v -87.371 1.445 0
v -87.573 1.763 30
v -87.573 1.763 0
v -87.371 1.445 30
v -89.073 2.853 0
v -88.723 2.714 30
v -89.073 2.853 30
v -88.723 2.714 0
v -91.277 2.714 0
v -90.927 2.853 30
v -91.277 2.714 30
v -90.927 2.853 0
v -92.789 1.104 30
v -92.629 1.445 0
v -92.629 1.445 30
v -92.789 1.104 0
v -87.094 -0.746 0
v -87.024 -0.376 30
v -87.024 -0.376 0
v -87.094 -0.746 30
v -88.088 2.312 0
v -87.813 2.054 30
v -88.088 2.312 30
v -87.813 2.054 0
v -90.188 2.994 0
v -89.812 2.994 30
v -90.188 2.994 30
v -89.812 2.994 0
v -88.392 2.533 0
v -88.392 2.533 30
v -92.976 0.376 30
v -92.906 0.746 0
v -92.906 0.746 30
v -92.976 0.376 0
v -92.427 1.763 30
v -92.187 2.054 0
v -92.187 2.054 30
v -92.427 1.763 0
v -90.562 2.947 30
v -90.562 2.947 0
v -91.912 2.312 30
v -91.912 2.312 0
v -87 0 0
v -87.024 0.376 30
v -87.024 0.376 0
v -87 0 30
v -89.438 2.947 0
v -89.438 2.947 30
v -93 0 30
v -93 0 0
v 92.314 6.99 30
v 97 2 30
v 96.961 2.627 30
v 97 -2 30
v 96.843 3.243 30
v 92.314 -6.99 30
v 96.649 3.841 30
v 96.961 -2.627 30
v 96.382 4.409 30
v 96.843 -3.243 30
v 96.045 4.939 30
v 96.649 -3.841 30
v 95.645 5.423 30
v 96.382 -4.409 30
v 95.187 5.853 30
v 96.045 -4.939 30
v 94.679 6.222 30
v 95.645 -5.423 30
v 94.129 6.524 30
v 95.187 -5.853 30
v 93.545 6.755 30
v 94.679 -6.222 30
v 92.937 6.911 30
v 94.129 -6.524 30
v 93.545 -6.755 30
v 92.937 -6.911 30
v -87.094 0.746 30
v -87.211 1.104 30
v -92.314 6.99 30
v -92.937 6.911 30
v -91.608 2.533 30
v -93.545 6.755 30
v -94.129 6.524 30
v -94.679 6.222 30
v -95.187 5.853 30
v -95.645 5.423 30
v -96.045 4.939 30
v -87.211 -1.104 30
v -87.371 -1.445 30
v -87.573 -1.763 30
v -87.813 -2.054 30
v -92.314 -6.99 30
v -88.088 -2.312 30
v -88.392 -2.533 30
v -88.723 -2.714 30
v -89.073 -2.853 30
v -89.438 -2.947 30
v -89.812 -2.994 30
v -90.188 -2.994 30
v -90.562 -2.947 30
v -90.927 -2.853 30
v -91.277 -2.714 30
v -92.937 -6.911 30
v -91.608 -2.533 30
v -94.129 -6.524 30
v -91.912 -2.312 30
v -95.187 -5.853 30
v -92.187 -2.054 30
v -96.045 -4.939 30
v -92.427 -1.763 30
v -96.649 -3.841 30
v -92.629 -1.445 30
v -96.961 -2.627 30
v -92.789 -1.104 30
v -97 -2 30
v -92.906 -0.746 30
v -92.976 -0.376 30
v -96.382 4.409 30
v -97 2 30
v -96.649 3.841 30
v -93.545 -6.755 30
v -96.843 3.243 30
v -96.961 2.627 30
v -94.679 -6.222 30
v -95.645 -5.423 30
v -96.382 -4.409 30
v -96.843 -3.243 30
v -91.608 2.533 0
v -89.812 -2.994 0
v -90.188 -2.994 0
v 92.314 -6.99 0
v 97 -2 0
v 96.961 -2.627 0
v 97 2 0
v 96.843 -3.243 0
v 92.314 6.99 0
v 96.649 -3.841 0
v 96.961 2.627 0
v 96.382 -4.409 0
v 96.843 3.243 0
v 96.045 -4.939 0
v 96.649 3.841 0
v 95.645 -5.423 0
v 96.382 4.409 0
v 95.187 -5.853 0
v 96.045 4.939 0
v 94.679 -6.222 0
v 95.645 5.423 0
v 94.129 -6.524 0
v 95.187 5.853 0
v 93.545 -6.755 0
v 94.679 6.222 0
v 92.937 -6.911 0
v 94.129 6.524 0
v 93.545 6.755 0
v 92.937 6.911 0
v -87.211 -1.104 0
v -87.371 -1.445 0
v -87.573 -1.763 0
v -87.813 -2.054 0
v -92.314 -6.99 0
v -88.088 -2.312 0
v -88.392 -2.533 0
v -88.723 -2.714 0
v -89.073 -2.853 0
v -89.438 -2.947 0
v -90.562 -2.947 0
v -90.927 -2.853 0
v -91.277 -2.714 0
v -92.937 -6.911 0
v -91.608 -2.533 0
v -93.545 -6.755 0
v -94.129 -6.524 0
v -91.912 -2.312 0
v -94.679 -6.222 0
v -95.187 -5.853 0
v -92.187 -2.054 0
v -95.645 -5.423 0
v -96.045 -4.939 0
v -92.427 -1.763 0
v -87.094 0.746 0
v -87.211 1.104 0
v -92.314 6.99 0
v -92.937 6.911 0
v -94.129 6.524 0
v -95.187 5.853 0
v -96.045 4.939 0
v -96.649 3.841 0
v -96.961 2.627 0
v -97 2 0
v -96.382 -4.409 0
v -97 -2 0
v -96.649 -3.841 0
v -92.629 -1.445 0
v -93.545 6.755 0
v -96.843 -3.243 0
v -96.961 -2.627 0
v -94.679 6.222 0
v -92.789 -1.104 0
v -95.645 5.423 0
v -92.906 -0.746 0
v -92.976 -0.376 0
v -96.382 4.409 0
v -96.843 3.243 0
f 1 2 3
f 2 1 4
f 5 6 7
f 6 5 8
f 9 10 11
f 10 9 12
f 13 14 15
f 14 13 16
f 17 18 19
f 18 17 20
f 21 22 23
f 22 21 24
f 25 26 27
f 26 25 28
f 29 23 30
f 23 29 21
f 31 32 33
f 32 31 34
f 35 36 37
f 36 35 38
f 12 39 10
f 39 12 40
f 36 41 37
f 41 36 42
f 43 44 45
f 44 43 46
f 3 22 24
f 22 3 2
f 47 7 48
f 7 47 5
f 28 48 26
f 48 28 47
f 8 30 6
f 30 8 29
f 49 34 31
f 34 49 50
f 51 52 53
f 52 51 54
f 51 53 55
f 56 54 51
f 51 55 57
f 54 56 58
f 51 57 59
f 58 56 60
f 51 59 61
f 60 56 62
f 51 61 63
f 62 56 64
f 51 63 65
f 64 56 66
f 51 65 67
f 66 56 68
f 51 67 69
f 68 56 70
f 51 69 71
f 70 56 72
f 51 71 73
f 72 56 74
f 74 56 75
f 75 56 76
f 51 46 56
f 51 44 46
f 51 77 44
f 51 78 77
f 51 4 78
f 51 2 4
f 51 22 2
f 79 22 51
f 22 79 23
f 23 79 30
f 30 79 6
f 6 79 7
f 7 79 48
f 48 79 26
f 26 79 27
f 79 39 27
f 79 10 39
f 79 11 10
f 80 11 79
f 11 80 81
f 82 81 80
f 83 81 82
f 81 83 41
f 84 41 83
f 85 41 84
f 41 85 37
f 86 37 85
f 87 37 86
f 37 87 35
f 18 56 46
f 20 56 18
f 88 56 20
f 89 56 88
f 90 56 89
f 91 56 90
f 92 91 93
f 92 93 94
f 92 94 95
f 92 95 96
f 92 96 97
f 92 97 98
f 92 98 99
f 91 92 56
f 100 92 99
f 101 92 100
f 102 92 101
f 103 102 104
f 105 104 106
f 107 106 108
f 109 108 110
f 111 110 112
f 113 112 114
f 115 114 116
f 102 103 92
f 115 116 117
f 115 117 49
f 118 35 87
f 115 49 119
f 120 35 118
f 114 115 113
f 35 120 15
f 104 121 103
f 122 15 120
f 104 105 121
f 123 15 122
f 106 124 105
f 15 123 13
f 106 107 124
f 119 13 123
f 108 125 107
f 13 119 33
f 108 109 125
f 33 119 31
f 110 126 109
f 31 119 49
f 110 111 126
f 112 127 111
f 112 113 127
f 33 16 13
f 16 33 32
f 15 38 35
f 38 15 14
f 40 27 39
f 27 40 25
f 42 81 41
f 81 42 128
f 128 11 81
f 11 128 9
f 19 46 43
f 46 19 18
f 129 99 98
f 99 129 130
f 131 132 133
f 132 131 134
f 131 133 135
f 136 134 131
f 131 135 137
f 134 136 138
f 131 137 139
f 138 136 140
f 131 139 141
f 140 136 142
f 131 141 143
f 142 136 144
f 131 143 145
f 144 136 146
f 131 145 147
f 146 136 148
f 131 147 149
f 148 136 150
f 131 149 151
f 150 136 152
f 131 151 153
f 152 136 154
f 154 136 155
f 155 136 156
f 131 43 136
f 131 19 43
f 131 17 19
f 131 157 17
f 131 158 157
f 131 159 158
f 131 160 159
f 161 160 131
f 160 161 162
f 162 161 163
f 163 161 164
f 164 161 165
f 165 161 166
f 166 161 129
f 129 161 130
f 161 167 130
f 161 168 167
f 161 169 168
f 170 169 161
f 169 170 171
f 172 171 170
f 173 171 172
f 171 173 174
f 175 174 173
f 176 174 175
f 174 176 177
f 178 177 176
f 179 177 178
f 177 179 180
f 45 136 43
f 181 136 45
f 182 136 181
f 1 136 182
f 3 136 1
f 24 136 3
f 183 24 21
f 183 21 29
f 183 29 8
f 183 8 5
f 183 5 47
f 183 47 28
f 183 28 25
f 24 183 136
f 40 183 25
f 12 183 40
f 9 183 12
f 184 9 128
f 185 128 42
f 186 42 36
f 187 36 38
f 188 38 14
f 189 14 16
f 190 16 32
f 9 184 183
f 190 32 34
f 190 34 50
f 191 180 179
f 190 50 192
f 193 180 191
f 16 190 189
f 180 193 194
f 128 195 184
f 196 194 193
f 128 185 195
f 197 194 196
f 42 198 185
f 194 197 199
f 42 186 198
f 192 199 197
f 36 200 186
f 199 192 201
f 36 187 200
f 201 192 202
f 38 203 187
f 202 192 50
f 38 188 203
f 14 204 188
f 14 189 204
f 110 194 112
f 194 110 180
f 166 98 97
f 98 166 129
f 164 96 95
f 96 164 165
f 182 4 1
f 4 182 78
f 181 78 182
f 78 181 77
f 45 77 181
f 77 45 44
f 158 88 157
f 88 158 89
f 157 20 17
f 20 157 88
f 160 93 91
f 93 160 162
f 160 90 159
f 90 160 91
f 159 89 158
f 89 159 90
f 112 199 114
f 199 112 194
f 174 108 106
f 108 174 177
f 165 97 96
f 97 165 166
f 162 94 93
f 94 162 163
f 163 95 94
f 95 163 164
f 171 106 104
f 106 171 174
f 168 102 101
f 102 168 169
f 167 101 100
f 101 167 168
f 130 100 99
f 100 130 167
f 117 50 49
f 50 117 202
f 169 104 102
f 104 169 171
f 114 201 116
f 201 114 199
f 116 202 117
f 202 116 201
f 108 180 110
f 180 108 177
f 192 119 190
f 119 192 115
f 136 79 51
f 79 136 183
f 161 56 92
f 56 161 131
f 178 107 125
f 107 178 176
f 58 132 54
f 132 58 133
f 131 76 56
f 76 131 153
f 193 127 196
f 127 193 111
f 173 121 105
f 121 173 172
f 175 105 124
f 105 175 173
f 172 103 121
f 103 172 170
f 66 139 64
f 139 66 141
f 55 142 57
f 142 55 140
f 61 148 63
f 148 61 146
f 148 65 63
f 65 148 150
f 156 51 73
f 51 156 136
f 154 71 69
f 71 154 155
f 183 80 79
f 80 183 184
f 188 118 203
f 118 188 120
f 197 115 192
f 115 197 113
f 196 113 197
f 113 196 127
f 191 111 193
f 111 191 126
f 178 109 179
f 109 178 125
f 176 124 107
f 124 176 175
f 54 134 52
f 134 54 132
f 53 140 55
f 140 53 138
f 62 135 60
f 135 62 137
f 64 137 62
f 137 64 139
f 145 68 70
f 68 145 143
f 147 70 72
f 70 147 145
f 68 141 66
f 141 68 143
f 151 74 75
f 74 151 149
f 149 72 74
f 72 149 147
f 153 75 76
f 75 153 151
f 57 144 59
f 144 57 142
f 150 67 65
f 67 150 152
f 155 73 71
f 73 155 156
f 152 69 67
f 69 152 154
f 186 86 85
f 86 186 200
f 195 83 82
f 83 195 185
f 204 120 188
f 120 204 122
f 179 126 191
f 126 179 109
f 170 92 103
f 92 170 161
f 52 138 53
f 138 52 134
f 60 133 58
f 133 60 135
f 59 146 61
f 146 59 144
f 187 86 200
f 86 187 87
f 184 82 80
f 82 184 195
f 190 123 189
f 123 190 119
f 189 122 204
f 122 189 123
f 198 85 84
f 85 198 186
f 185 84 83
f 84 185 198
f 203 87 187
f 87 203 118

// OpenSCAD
$fn = 50;


difference() {
	union() {
		hull() {
			translate(v = [-92.0000000000, 2.0000000000, 0]) {
				cylinder(h = 30, r = 5);
			}
			translate(v = [92.0000000000, 2.0000000000, 0]) {
				cylinder(h = 30, r = 5);
			}
			translate(v = [-92.0000000000, -2.0000000000, 0]) {
				cylinder(h = 30, r = 5);
			}
			translate(v = [92.0000000000, -2.0000000000, 0]) {
				cylinder(h = 30, r = 5);
			}
		}
	}
	union() {
		translate(v = [-90.0000000000, 0.0000000000, 0]) {
			cylinder(h = 30, r = 3.0000000000);
		}
		translate(v = [-90.0000000000, 0.0000000000, 0]) {
			cylinder(h = 30, r = 1.5000000000);
		}
		translate(v = [-90.0000000000, 0.0000000000, 0]) {
			cylinder(h = 30, r = 1.5000000000);
		}
		translate(v = [-90.0000000000, 0.0000000000, 0]) {
			cylinder(h = 30, r = 1.5000000000);
		}
	}
}
